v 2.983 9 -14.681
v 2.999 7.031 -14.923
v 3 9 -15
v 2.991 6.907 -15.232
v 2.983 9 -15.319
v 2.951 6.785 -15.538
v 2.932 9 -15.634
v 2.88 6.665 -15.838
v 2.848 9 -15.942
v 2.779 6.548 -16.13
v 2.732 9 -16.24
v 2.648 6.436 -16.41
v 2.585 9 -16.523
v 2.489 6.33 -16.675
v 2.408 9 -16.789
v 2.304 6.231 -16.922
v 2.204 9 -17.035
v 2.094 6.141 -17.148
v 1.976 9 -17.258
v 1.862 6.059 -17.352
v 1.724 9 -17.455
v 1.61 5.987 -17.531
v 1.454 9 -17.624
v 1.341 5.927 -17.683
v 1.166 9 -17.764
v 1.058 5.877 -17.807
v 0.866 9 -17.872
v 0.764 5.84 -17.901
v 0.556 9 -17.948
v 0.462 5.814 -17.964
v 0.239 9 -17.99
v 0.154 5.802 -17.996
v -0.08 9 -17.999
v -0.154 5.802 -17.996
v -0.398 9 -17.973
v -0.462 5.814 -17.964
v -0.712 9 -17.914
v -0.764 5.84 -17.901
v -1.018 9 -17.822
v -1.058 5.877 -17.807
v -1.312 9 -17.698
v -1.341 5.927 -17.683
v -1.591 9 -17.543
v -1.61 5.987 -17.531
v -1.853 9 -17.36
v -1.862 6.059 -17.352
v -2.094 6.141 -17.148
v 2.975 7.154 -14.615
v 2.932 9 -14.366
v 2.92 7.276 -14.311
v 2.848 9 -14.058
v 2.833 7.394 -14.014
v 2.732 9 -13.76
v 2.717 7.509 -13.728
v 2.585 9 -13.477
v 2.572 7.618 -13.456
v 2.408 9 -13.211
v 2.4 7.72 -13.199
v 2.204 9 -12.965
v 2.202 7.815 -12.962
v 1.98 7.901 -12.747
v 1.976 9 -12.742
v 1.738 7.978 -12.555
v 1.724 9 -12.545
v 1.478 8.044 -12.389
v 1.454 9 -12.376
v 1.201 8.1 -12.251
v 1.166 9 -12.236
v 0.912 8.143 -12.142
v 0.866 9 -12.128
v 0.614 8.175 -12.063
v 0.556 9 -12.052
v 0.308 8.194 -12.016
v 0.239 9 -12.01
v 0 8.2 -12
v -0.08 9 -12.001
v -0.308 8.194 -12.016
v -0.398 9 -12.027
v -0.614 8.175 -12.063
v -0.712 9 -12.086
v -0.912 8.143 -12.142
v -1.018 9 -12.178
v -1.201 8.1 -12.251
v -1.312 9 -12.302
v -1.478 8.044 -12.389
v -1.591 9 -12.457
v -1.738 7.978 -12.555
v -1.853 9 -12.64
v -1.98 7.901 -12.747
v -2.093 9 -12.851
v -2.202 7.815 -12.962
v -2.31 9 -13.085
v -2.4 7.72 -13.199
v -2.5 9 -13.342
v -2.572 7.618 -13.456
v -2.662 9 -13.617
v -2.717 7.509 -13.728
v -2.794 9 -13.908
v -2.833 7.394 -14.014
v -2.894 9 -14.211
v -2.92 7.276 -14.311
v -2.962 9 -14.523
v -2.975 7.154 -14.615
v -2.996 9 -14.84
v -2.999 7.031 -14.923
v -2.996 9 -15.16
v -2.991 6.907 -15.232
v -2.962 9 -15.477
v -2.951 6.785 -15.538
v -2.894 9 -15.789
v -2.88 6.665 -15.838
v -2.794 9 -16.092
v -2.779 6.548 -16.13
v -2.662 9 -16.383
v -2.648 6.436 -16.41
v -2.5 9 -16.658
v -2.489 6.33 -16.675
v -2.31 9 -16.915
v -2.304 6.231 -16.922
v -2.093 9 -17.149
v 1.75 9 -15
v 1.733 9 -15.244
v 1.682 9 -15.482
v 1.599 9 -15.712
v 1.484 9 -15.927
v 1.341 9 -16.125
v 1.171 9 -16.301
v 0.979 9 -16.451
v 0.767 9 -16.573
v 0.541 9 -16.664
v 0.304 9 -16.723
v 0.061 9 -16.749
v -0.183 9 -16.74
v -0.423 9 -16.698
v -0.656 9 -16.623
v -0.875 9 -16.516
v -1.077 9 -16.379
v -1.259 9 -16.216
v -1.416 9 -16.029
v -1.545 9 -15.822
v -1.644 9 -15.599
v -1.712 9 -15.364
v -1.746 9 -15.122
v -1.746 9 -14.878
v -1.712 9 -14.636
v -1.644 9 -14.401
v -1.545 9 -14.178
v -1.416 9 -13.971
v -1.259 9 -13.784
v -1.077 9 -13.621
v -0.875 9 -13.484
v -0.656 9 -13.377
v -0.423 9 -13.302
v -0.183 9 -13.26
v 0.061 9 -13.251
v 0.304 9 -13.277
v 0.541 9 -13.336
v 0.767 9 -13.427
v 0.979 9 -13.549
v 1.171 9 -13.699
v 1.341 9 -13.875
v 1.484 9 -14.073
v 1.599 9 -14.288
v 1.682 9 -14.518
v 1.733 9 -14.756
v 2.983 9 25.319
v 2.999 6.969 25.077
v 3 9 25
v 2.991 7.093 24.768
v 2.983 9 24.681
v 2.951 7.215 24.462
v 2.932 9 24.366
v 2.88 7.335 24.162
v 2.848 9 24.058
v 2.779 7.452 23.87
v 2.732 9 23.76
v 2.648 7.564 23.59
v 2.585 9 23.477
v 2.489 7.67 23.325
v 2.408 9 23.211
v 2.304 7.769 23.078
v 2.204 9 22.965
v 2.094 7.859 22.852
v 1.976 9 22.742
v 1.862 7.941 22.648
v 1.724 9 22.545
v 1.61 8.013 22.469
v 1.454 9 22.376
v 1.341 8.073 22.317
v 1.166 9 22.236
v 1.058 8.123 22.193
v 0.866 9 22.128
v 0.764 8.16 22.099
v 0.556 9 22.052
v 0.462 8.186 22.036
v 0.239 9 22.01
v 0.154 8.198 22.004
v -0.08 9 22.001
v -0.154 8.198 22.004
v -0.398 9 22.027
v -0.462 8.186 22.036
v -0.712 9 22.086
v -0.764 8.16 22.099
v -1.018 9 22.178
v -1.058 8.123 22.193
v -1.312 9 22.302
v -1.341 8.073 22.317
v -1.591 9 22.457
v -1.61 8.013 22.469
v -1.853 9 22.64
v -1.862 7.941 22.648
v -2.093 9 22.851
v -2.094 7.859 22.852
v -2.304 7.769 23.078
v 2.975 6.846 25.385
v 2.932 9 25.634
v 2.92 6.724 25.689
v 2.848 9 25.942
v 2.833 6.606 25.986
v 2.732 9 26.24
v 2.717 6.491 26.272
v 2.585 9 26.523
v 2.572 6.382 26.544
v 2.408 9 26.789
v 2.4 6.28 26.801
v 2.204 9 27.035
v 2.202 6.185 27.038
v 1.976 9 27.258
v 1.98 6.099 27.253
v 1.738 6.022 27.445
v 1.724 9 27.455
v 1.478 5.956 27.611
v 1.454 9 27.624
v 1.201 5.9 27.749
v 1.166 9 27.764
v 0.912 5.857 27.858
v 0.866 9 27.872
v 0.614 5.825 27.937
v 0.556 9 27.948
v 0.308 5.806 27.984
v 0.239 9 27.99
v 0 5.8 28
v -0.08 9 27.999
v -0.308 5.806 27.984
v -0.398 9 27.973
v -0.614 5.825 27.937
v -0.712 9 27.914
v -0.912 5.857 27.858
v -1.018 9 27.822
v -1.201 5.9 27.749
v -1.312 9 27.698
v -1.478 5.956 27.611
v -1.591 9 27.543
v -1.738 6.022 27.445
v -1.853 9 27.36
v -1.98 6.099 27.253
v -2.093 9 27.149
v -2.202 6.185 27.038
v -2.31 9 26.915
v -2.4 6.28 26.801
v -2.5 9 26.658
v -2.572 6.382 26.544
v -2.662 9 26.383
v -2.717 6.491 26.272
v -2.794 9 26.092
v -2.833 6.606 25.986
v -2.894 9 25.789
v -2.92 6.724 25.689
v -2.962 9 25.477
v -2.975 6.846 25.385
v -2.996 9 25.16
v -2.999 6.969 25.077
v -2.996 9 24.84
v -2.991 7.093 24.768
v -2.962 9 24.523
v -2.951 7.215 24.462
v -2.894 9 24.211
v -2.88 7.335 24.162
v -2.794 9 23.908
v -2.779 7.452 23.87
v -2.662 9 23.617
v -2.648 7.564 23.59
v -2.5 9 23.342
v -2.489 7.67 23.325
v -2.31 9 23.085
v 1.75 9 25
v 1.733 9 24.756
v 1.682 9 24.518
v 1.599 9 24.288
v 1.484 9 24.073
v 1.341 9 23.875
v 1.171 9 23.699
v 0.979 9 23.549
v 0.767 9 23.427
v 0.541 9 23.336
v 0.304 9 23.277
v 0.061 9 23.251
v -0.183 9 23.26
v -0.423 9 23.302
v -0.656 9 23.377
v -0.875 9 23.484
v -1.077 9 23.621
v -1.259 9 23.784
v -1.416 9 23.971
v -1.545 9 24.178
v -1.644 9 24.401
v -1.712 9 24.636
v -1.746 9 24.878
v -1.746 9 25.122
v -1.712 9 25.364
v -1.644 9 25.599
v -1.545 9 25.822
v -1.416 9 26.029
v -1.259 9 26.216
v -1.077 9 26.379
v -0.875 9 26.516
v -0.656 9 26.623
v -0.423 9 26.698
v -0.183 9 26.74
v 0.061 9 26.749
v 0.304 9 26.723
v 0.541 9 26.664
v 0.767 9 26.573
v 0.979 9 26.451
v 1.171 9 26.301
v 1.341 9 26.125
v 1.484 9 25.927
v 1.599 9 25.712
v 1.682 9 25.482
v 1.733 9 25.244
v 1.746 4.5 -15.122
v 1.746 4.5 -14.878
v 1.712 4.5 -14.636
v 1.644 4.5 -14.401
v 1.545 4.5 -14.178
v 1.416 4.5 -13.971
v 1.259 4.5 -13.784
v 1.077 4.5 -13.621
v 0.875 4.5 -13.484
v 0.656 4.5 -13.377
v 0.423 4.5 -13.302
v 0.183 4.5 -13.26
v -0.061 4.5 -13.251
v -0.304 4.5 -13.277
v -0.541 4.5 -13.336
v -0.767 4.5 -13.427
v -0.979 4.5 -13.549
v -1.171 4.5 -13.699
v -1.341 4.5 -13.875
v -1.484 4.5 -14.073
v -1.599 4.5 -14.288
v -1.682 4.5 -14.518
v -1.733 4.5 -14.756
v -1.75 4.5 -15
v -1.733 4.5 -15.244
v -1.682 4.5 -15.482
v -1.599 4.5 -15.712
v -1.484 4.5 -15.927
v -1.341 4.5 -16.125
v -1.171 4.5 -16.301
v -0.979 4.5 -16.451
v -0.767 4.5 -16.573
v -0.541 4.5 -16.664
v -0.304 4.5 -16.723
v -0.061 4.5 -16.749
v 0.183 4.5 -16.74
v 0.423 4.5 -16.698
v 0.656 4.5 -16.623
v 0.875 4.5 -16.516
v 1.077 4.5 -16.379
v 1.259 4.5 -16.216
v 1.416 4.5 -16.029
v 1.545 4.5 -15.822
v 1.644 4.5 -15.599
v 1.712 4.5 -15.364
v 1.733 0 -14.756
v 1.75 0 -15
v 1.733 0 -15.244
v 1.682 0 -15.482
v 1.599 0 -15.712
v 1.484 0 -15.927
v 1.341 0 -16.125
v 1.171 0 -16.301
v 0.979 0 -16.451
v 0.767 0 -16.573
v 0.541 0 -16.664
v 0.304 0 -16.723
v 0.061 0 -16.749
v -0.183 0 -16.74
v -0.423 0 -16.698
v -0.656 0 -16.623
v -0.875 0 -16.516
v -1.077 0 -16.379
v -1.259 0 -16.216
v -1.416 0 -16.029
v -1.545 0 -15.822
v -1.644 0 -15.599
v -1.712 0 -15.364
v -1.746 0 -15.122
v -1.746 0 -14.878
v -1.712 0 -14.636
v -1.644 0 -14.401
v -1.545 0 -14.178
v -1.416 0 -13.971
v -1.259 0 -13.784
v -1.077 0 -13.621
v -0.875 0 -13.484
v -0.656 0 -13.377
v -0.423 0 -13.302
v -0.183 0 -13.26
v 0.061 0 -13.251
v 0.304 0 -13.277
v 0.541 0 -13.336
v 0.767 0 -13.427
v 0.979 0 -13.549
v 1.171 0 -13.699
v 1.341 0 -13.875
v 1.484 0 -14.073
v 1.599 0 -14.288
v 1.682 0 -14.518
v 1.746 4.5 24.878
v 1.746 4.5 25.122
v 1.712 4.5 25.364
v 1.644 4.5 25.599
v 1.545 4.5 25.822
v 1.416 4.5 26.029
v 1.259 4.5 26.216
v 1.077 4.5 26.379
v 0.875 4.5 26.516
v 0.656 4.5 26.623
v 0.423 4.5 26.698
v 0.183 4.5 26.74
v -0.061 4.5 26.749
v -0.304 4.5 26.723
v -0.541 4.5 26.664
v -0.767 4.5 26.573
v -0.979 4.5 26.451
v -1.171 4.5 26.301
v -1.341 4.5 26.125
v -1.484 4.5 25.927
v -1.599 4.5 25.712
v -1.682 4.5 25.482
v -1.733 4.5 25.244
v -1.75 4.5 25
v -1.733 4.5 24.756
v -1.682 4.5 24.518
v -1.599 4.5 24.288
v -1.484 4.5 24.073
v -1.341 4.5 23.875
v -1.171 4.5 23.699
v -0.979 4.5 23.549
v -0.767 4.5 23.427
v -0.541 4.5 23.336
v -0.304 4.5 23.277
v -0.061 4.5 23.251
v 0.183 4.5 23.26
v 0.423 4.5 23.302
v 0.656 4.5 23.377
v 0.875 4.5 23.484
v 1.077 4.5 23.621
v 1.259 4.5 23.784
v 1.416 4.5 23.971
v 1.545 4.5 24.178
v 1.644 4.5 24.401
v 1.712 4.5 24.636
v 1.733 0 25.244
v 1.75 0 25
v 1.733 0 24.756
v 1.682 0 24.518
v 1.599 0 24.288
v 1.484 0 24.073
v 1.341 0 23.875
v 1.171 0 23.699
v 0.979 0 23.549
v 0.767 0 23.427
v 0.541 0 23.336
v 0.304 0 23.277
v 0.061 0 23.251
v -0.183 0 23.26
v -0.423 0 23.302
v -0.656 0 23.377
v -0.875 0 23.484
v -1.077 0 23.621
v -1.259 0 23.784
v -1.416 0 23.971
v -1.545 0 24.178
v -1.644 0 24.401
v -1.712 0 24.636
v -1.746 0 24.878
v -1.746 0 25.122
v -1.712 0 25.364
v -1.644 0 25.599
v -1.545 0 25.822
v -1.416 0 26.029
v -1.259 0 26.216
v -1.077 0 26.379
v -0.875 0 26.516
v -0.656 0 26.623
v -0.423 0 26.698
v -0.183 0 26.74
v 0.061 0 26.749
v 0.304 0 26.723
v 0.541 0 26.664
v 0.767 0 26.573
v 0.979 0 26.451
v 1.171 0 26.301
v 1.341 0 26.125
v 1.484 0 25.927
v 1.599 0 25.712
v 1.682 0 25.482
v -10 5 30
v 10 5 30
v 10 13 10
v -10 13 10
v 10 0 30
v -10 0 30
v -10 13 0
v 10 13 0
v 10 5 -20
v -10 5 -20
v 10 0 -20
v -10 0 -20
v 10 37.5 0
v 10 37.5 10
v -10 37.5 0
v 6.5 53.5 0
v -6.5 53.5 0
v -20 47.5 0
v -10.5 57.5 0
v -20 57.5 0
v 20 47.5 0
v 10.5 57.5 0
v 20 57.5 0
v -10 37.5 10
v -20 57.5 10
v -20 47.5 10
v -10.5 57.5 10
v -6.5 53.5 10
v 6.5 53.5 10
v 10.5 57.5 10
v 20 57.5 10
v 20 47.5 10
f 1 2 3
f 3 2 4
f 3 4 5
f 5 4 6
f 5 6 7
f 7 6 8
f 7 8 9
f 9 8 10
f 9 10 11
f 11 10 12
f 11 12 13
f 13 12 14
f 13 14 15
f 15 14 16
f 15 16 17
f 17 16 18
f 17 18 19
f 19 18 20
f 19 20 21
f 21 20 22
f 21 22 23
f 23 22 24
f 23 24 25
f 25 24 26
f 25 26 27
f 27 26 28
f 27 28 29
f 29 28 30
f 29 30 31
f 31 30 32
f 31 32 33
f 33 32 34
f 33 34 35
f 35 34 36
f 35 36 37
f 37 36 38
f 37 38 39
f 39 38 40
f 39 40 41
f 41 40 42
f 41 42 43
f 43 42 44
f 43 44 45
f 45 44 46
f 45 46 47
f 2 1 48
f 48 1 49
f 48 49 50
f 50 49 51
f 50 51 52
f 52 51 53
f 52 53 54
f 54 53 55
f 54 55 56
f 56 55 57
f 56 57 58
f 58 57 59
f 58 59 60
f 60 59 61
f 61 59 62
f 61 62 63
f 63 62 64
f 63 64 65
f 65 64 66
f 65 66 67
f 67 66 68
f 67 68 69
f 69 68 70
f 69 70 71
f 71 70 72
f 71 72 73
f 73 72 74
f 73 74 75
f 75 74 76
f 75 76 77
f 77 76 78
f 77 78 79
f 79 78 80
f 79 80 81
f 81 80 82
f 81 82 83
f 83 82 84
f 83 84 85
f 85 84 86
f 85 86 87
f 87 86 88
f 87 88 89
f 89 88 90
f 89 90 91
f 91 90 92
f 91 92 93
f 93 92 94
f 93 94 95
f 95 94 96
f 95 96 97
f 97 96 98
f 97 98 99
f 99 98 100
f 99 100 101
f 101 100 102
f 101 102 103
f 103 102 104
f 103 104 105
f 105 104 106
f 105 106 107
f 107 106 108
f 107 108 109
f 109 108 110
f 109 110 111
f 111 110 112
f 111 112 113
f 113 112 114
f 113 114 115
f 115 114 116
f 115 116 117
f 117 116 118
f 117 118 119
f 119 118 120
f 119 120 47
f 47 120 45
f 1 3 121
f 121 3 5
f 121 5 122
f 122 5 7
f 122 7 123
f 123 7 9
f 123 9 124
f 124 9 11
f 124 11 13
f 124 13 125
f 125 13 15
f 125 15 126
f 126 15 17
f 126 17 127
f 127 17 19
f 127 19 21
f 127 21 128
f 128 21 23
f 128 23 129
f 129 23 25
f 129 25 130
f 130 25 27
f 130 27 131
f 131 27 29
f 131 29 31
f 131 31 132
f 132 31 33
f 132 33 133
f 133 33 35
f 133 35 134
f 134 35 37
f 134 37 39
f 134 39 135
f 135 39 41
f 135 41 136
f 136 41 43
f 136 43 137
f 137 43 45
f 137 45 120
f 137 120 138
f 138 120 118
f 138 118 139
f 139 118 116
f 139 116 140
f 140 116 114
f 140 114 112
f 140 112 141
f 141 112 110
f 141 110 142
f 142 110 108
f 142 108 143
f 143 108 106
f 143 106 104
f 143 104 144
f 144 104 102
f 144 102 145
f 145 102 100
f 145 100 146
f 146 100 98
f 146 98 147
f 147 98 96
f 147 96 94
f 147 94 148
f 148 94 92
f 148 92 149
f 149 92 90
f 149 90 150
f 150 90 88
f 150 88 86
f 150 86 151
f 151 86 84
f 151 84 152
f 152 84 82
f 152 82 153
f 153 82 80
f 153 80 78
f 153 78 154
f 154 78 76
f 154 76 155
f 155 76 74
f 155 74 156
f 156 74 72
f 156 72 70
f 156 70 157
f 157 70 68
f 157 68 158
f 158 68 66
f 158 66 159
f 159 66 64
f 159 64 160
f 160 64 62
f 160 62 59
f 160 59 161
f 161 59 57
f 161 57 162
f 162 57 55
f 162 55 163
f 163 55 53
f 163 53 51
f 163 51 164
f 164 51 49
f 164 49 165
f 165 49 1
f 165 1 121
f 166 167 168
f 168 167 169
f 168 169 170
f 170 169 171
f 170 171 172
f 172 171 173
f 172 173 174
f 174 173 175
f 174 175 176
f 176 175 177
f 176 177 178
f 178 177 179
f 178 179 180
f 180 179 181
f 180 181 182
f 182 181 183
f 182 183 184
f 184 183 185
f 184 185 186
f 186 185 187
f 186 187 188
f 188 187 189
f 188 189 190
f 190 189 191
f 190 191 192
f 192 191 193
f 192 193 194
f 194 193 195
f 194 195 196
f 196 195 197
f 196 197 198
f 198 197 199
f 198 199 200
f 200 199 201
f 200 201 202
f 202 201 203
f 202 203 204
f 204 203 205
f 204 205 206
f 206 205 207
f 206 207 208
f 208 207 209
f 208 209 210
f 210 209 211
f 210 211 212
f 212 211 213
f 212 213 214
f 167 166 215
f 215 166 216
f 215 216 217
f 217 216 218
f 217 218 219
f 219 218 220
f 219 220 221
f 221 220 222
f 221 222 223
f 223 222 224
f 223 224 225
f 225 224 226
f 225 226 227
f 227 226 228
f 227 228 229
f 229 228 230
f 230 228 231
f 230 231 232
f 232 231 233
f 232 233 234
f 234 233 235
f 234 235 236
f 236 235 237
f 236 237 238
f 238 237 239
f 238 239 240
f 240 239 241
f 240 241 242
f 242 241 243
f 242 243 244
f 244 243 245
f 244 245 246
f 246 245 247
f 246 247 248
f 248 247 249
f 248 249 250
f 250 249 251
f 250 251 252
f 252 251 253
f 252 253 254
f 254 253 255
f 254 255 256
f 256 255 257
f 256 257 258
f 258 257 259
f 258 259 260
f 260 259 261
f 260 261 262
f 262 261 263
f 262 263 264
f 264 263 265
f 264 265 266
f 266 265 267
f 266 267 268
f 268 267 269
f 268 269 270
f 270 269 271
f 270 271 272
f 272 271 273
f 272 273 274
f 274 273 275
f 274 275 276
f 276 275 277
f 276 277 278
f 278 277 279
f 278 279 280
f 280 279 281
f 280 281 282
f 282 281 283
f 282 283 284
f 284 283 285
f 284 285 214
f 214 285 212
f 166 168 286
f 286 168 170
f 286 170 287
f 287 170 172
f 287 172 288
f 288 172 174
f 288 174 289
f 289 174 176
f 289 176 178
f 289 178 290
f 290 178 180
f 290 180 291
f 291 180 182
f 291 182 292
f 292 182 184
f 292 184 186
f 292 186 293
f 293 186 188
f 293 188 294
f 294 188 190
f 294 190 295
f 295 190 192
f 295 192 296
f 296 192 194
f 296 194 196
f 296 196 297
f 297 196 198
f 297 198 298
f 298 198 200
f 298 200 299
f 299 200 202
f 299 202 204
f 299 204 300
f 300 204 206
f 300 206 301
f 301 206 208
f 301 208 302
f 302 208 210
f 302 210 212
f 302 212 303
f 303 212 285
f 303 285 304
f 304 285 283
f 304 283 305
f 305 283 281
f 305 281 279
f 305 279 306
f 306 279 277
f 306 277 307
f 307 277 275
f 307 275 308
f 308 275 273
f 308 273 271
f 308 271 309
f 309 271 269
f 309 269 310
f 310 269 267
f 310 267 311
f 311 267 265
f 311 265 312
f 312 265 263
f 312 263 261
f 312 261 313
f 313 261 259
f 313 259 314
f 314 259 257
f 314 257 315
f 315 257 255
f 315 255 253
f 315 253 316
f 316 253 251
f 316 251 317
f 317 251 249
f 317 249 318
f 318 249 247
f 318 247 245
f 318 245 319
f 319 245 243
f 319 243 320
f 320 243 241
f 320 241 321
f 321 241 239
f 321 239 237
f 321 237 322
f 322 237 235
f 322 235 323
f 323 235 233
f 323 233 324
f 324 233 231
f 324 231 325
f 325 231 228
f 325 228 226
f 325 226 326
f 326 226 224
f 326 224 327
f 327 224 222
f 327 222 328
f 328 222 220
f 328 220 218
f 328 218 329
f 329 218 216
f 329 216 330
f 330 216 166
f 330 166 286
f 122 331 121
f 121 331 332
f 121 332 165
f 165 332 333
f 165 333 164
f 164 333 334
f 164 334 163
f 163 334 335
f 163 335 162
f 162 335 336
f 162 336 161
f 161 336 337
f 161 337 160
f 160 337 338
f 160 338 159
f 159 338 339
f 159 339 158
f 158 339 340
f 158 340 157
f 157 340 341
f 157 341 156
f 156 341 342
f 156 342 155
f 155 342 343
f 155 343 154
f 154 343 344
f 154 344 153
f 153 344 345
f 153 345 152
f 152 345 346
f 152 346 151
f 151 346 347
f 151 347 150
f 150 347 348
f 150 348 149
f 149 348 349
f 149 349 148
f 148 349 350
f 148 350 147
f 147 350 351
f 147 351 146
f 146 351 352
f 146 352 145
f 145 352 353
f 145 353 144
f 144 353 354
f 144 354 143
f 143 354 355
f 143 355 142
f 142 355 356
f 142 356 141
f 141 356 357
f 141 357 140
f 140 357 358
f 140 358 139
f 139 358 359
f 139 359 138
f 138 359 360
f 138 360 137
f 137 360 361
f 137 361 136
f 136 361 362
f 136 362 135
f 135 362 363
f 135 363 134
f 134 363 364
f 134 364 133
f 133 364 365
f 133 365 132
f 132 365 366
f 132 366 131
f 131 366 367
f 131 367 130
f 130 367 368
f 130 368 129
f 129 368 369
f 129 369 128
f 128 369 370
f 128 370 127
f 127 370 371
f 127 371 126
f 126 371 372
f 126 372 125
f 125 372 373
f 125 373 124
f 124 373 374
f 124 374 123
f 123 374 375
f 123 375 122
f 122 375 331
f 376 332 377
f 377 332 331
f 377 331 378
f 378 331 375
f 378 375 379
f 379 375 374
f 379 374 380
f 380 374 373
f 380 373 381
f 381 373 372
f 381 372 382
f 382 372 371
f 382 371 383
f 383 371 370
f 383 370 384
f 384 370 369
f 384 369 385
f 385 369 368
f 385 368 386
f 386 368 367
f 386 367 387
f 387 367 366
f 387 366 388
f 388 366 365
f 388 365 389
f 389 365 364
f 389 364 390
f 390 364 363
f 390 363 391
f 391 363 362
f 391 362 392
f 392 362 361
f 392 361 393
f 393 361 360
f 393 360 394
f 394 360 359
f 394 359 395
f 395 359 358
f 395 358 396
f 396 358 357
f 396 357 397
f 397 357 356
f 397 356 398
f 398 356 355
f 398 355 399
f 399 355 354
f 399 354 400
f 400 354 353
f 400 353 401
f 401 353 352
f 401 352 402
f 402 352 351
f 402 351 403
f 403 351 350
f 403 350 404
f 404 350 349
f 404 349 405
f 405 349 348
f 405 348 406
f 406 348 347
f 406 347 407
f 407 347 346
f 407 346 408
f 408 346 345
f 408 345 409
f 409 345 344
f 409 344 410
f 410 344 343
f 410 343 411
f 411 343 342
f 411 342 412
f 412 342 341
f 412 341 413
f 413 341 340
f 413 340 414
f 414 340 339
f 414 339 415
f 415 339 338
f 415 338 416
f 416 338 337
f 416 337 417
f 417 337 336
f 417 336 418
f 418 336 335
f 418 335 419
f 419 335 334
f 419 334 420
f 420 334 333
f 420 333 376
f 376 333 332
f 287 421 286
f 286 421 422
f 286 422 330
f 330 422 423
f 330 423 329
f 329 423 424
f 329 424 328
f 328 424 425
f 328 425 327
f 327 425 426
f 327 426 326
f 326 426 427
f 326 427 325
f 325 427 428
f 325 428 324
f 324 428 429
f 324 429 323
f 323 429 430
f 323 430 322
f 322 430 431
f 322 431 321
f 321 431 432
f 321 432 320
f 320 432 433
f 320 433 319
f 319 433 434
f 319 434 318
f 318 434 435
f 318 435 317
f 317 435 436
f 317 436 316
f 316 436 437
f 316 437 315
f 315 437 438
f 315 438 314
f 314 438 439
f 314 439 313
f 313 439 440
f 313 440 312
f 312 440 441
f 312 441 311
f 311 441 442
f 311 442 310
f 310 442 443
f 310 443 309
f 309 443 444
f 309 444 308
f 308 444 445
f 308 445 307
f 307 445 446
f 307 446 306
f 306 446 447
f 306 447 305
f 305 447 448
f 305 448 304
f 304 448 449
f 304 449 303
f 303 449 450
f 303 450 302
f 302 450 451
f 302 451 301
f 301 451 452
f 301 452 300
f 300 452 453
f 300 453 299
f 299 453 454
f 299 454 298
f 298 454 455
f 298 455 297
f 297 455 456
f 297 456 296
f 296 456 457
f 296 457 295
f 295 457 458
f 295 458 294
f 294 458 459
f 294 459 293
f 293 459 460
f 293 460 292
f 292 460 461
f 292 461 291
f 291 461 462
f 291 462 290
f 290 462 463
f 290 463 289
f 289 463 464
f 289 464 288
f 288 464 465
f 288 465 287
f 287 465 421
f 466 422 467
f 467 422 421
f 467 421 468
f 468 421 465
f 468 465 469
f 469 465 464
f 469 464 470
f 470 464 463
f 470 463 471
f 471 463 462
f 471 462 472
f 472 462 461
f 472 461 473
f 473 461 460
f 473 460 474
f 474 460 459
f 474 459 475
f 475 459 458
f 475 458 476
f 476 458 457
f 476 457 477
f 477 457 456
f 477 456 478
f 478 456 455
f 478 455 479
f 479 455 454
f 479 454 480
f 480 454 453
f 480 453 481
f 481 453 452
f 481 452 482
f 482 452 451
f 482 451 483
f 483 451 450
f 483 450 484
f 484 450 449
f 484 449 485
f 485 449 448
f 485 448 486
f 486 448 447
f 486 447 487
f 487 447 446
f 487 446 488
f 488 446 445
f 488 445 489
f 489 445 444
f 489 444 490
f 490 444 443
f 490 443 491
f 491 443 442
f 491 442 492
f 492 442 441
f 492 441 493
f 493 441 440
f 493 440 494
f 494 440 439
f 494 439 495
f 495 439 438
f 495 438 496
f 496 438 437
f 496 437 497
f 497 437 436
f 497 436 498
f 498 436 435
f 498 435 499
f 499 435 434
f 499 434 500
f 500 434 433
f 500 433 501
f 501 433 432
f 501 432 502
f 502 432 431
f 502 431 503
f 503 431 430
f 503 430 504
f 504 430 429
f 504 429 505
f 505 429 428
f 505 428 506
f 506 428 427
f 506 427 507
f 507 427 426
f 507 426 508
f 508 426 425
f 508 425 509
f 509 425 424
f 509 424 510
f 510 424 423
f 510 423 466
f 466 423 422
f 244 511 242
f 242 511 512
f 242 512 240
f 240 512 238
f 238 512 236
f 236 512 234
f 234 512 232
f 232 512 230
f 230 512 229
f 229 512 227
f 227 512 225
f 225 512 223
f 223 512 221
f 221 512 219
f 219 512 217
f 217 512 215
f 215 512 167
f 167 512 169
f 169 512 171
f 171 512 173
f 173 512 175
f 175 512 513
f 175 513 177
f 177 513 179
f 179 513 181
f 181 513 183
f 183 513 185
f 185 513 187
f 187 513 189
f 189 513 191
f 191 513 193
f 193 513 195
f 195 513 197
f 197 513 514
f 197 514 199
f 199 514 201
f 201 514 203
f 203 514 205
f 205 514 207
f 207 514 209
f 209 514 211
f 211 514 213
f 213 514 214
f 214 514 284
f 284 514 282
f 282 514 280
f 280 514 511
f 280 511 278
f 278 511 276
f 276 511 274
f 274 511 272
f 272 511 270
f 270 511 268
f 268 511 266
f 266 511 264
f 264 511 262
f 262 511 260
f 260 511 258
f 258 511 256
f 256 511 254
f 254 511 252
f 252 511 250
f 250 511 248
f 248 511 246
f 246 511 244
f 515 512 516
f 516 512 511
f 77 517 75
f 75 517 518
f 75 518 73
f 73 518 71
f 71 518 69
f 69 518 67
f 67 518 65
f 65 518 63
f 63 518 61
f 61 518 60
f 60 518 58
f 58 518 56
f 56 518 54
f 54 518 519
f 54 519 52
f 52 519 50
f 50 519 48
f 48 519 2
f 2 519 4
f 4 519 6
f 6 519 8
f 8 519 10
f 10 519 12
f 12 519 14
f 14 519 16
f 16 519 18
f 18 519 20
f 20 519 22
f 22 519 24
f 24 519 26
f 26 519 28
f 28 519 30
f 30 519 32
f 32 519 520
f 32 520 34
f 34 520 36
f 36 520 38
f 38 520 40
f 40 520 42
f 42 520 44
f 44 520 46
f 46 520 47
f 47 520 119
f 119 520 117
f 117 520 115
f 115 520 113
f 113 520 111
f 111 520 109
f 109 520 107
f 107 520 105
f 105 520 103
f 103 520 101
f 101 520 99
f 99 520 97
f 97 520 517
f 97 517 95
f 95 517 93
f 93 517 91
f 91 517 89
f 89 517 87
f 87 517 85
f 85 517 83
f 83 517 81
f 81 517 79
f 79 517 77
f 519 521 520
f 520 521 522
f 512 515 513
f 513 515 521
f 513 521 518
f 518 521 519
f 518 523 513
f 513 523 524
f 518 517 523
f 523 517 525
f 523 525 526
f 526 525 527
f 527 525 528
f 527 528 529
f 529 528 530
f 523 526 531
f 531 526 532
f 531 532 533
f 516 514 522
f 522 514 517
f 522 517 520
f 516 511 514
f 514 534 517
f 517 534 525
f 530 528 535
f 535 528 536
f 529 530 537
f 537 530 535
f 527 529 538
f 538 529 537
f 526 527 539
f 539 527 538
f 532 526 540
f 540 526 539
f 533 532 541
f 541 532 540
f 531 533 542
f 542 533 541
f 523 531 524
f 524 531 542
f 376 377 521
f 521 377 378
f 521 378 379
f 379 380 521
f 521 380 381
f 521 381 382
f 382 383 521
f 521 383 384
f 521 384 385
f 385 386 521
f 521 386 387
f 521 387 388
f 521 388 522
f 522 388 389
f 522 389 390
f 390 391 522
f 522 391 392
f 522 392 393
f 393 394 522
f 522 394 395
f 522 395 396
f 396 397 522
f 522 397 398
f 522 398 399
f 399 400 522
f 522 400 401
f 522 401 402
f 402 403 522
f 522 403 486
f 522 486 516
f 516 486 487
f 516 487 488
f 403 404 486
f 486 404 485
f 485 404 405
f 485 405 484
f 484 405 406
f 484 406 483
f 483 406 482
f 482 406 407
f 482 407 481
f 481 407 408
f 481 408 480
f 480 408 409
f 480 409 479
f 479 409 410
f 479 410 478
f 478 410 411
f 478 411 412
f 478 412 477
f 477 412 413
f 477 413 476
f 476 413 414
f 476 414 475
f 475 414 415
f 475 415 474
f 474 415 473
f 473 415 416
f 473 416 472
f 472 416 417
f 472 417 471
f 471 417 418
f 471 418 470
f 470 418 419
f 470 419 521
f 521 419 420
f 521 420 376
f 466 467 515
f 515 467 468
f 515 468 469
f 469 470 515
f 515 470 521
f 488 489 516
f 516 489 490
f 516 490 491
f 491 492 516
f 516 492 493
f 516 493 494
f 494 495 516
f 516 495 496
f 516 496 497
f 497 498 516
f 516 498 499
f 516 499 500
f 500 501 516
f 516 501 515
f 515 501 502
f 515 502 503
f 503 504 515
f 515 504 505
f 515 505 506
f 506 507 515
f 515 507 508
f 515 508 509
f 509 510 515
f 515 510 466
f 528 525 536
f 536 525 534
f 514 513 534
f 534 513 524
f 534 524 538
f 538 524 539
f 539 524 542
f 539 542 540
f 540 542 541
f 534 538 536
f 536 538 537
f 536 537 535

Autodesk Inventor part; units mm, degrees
ref_plane "YZ Plane" through (0, 0, 0) normal (1, 0, 0) x (0, 1, 0)
ref_plane "XZ Plane" through (0, 0, 0) normal (0, 1, 0) x (-1, 0, 0)
ref_plane "XY Plane" through (0, 0, 0) normal (0, 0, 1) x (1, 0, 0)
sketch "Sketch1" plane through (0, 0, 0) normal (0, 0, 1) x (1, 0, 0)
  line L0 (-6.5, 53.5) -> (0, 53.5)
  line L1 (-20, 57.5) -> (-10.5, 57.5)
  line L2 (-6.5, 53.5) -> (-10.5, 53.5) construction
  line L3 (-10.5, 53.5) -> (-10.5, 57.5) construction
  line L4 (-6.5, 53.5) -> (-10.5, 57.5)
  line L5 (-20, 57.5) -> (-20, 47.5)
  line L6 (0, 53.5) -> (0, 0) construction
  line L7 (0, 0) -> (-10, 0)
  line L8 (-20, 47.5) -> (-10, 37.5)
  line L9 (-20, 47.5) -> (-5.8579, 47.5) construction
  line L10 (-10, 0) -> (-10, 37.5)
  line L11 (6.5, 53.5) -> (0, 53.5)
  line L12 (20, 57.5) -> (10.5, 57.5)
  line L13 (6.5, 53.5) -> (10.5, 53.5) construction
  line L14 (10.5, 53.5) -> (10.5, 57.5) construction
  line L15 (6.5, 53.5) -> (10.5, 57.5)
  line L16 (20, 57.5) -> (20, 47.5)
  line L17 (0, 0) -> (10, 0)
  line L18 (20, 47.5) -> (10, 37.5)
  line L19 (20, 47.5) -> (5.8579, 47.5) construction
  line L20 (10, 0) -> (10, 37.5)
  dimension "d0" = 6.5
  dimension "d1" = 9.5
  dimension "d2" = 4
  dimension "d3" = 4
  dimension "d5" = 10
  dimension "d6" = 53.5
  dimension "d7" = 10
  dimension "d8" = 45
extrude "Extrusion1" add sketch "Sketch1" along normal blind 10
sketch "Sketch2" plane through (-10, 0, 0) normal (-1, 0, 0) x (0, 0, 1)
  line L0 (0, 0) -> (10, 0) construction
  line L1 (5, 0) -> (5, 15) construction
  line L2 (5, 0) -> (-20, 0)
  line L3 (5, 0) -> (30, 0)
  line L4 (-20, 0) -> (-20, 5)
  line L5 (-20, 5) -> (5, 15)
  line L6 (30, 0) -> (30, 5)
  line L7 (30, 5) -> (5, 15)
  dimension "d11" = 15
  dimension "d12" = 25
  dimension "d15" = 5
extrude "Extrusion2" add sketch "Sketch2" against normal up to surface (20 mm away)
sketch "Sketch3" plane through (-6.5, 53.5, 0) normal (0, 1, 0) x (1, 0, 0)
  line L0 (-3.5, -30) -> (16.5, -30) projected
  line L1 (6.5, -30) -> (6.5, 20) construction
  line L2 (-3.5, 20) -> (16.5, 20) projected
  line L3 (-13.5, 0) -> (-13.5, -10) construction
  line L4 (-13.5, -5) -> (26.5, -5) construction
  line L5 (26.5, 0) -> (26.5, -10) construction
  line L6 (-3.5, 20) -> (-3.5, -30) construction
  line L7 (-3.5, -25) -> (16.5, -25) construction
  line L8 (16.5, -30) -> (16.5, -10) construction
  circle A0 centre (6.5, -25) radius 1.75
  circle A1 centre (6.5, 15) radius 1.75
  point P0 (6.5, 0)
  dimension "d16" = 5
  dimension "d17" = 3.5
extrude "Extrusion3" cut sketch "Sketch3" against normal through all
sketch "Sketch4" plane through (-10, 0, 30) normal (0, -1, 0) x (1, 0, 0)
  line L0 (20, -50) -> (20, 0) construction
  line L1 (20, -25) -> (0, -25) construction
  line L2 (0, -50) -> (0, 0) construction
  circle A0 centre (10, -5) radius 1.75 projected
  circle A1 centre (10, -5) radius 3
  circle A2 centre (10, -45) radius 3
  circle A3 centre (10, -45) radius 1.75 projected
  point P0 (10, -30)
  dimension "d20" = 6
extrude "Extrusion4" add sketch "Sketch4" against normal blind 9
properties part number "aux_axis_support"
